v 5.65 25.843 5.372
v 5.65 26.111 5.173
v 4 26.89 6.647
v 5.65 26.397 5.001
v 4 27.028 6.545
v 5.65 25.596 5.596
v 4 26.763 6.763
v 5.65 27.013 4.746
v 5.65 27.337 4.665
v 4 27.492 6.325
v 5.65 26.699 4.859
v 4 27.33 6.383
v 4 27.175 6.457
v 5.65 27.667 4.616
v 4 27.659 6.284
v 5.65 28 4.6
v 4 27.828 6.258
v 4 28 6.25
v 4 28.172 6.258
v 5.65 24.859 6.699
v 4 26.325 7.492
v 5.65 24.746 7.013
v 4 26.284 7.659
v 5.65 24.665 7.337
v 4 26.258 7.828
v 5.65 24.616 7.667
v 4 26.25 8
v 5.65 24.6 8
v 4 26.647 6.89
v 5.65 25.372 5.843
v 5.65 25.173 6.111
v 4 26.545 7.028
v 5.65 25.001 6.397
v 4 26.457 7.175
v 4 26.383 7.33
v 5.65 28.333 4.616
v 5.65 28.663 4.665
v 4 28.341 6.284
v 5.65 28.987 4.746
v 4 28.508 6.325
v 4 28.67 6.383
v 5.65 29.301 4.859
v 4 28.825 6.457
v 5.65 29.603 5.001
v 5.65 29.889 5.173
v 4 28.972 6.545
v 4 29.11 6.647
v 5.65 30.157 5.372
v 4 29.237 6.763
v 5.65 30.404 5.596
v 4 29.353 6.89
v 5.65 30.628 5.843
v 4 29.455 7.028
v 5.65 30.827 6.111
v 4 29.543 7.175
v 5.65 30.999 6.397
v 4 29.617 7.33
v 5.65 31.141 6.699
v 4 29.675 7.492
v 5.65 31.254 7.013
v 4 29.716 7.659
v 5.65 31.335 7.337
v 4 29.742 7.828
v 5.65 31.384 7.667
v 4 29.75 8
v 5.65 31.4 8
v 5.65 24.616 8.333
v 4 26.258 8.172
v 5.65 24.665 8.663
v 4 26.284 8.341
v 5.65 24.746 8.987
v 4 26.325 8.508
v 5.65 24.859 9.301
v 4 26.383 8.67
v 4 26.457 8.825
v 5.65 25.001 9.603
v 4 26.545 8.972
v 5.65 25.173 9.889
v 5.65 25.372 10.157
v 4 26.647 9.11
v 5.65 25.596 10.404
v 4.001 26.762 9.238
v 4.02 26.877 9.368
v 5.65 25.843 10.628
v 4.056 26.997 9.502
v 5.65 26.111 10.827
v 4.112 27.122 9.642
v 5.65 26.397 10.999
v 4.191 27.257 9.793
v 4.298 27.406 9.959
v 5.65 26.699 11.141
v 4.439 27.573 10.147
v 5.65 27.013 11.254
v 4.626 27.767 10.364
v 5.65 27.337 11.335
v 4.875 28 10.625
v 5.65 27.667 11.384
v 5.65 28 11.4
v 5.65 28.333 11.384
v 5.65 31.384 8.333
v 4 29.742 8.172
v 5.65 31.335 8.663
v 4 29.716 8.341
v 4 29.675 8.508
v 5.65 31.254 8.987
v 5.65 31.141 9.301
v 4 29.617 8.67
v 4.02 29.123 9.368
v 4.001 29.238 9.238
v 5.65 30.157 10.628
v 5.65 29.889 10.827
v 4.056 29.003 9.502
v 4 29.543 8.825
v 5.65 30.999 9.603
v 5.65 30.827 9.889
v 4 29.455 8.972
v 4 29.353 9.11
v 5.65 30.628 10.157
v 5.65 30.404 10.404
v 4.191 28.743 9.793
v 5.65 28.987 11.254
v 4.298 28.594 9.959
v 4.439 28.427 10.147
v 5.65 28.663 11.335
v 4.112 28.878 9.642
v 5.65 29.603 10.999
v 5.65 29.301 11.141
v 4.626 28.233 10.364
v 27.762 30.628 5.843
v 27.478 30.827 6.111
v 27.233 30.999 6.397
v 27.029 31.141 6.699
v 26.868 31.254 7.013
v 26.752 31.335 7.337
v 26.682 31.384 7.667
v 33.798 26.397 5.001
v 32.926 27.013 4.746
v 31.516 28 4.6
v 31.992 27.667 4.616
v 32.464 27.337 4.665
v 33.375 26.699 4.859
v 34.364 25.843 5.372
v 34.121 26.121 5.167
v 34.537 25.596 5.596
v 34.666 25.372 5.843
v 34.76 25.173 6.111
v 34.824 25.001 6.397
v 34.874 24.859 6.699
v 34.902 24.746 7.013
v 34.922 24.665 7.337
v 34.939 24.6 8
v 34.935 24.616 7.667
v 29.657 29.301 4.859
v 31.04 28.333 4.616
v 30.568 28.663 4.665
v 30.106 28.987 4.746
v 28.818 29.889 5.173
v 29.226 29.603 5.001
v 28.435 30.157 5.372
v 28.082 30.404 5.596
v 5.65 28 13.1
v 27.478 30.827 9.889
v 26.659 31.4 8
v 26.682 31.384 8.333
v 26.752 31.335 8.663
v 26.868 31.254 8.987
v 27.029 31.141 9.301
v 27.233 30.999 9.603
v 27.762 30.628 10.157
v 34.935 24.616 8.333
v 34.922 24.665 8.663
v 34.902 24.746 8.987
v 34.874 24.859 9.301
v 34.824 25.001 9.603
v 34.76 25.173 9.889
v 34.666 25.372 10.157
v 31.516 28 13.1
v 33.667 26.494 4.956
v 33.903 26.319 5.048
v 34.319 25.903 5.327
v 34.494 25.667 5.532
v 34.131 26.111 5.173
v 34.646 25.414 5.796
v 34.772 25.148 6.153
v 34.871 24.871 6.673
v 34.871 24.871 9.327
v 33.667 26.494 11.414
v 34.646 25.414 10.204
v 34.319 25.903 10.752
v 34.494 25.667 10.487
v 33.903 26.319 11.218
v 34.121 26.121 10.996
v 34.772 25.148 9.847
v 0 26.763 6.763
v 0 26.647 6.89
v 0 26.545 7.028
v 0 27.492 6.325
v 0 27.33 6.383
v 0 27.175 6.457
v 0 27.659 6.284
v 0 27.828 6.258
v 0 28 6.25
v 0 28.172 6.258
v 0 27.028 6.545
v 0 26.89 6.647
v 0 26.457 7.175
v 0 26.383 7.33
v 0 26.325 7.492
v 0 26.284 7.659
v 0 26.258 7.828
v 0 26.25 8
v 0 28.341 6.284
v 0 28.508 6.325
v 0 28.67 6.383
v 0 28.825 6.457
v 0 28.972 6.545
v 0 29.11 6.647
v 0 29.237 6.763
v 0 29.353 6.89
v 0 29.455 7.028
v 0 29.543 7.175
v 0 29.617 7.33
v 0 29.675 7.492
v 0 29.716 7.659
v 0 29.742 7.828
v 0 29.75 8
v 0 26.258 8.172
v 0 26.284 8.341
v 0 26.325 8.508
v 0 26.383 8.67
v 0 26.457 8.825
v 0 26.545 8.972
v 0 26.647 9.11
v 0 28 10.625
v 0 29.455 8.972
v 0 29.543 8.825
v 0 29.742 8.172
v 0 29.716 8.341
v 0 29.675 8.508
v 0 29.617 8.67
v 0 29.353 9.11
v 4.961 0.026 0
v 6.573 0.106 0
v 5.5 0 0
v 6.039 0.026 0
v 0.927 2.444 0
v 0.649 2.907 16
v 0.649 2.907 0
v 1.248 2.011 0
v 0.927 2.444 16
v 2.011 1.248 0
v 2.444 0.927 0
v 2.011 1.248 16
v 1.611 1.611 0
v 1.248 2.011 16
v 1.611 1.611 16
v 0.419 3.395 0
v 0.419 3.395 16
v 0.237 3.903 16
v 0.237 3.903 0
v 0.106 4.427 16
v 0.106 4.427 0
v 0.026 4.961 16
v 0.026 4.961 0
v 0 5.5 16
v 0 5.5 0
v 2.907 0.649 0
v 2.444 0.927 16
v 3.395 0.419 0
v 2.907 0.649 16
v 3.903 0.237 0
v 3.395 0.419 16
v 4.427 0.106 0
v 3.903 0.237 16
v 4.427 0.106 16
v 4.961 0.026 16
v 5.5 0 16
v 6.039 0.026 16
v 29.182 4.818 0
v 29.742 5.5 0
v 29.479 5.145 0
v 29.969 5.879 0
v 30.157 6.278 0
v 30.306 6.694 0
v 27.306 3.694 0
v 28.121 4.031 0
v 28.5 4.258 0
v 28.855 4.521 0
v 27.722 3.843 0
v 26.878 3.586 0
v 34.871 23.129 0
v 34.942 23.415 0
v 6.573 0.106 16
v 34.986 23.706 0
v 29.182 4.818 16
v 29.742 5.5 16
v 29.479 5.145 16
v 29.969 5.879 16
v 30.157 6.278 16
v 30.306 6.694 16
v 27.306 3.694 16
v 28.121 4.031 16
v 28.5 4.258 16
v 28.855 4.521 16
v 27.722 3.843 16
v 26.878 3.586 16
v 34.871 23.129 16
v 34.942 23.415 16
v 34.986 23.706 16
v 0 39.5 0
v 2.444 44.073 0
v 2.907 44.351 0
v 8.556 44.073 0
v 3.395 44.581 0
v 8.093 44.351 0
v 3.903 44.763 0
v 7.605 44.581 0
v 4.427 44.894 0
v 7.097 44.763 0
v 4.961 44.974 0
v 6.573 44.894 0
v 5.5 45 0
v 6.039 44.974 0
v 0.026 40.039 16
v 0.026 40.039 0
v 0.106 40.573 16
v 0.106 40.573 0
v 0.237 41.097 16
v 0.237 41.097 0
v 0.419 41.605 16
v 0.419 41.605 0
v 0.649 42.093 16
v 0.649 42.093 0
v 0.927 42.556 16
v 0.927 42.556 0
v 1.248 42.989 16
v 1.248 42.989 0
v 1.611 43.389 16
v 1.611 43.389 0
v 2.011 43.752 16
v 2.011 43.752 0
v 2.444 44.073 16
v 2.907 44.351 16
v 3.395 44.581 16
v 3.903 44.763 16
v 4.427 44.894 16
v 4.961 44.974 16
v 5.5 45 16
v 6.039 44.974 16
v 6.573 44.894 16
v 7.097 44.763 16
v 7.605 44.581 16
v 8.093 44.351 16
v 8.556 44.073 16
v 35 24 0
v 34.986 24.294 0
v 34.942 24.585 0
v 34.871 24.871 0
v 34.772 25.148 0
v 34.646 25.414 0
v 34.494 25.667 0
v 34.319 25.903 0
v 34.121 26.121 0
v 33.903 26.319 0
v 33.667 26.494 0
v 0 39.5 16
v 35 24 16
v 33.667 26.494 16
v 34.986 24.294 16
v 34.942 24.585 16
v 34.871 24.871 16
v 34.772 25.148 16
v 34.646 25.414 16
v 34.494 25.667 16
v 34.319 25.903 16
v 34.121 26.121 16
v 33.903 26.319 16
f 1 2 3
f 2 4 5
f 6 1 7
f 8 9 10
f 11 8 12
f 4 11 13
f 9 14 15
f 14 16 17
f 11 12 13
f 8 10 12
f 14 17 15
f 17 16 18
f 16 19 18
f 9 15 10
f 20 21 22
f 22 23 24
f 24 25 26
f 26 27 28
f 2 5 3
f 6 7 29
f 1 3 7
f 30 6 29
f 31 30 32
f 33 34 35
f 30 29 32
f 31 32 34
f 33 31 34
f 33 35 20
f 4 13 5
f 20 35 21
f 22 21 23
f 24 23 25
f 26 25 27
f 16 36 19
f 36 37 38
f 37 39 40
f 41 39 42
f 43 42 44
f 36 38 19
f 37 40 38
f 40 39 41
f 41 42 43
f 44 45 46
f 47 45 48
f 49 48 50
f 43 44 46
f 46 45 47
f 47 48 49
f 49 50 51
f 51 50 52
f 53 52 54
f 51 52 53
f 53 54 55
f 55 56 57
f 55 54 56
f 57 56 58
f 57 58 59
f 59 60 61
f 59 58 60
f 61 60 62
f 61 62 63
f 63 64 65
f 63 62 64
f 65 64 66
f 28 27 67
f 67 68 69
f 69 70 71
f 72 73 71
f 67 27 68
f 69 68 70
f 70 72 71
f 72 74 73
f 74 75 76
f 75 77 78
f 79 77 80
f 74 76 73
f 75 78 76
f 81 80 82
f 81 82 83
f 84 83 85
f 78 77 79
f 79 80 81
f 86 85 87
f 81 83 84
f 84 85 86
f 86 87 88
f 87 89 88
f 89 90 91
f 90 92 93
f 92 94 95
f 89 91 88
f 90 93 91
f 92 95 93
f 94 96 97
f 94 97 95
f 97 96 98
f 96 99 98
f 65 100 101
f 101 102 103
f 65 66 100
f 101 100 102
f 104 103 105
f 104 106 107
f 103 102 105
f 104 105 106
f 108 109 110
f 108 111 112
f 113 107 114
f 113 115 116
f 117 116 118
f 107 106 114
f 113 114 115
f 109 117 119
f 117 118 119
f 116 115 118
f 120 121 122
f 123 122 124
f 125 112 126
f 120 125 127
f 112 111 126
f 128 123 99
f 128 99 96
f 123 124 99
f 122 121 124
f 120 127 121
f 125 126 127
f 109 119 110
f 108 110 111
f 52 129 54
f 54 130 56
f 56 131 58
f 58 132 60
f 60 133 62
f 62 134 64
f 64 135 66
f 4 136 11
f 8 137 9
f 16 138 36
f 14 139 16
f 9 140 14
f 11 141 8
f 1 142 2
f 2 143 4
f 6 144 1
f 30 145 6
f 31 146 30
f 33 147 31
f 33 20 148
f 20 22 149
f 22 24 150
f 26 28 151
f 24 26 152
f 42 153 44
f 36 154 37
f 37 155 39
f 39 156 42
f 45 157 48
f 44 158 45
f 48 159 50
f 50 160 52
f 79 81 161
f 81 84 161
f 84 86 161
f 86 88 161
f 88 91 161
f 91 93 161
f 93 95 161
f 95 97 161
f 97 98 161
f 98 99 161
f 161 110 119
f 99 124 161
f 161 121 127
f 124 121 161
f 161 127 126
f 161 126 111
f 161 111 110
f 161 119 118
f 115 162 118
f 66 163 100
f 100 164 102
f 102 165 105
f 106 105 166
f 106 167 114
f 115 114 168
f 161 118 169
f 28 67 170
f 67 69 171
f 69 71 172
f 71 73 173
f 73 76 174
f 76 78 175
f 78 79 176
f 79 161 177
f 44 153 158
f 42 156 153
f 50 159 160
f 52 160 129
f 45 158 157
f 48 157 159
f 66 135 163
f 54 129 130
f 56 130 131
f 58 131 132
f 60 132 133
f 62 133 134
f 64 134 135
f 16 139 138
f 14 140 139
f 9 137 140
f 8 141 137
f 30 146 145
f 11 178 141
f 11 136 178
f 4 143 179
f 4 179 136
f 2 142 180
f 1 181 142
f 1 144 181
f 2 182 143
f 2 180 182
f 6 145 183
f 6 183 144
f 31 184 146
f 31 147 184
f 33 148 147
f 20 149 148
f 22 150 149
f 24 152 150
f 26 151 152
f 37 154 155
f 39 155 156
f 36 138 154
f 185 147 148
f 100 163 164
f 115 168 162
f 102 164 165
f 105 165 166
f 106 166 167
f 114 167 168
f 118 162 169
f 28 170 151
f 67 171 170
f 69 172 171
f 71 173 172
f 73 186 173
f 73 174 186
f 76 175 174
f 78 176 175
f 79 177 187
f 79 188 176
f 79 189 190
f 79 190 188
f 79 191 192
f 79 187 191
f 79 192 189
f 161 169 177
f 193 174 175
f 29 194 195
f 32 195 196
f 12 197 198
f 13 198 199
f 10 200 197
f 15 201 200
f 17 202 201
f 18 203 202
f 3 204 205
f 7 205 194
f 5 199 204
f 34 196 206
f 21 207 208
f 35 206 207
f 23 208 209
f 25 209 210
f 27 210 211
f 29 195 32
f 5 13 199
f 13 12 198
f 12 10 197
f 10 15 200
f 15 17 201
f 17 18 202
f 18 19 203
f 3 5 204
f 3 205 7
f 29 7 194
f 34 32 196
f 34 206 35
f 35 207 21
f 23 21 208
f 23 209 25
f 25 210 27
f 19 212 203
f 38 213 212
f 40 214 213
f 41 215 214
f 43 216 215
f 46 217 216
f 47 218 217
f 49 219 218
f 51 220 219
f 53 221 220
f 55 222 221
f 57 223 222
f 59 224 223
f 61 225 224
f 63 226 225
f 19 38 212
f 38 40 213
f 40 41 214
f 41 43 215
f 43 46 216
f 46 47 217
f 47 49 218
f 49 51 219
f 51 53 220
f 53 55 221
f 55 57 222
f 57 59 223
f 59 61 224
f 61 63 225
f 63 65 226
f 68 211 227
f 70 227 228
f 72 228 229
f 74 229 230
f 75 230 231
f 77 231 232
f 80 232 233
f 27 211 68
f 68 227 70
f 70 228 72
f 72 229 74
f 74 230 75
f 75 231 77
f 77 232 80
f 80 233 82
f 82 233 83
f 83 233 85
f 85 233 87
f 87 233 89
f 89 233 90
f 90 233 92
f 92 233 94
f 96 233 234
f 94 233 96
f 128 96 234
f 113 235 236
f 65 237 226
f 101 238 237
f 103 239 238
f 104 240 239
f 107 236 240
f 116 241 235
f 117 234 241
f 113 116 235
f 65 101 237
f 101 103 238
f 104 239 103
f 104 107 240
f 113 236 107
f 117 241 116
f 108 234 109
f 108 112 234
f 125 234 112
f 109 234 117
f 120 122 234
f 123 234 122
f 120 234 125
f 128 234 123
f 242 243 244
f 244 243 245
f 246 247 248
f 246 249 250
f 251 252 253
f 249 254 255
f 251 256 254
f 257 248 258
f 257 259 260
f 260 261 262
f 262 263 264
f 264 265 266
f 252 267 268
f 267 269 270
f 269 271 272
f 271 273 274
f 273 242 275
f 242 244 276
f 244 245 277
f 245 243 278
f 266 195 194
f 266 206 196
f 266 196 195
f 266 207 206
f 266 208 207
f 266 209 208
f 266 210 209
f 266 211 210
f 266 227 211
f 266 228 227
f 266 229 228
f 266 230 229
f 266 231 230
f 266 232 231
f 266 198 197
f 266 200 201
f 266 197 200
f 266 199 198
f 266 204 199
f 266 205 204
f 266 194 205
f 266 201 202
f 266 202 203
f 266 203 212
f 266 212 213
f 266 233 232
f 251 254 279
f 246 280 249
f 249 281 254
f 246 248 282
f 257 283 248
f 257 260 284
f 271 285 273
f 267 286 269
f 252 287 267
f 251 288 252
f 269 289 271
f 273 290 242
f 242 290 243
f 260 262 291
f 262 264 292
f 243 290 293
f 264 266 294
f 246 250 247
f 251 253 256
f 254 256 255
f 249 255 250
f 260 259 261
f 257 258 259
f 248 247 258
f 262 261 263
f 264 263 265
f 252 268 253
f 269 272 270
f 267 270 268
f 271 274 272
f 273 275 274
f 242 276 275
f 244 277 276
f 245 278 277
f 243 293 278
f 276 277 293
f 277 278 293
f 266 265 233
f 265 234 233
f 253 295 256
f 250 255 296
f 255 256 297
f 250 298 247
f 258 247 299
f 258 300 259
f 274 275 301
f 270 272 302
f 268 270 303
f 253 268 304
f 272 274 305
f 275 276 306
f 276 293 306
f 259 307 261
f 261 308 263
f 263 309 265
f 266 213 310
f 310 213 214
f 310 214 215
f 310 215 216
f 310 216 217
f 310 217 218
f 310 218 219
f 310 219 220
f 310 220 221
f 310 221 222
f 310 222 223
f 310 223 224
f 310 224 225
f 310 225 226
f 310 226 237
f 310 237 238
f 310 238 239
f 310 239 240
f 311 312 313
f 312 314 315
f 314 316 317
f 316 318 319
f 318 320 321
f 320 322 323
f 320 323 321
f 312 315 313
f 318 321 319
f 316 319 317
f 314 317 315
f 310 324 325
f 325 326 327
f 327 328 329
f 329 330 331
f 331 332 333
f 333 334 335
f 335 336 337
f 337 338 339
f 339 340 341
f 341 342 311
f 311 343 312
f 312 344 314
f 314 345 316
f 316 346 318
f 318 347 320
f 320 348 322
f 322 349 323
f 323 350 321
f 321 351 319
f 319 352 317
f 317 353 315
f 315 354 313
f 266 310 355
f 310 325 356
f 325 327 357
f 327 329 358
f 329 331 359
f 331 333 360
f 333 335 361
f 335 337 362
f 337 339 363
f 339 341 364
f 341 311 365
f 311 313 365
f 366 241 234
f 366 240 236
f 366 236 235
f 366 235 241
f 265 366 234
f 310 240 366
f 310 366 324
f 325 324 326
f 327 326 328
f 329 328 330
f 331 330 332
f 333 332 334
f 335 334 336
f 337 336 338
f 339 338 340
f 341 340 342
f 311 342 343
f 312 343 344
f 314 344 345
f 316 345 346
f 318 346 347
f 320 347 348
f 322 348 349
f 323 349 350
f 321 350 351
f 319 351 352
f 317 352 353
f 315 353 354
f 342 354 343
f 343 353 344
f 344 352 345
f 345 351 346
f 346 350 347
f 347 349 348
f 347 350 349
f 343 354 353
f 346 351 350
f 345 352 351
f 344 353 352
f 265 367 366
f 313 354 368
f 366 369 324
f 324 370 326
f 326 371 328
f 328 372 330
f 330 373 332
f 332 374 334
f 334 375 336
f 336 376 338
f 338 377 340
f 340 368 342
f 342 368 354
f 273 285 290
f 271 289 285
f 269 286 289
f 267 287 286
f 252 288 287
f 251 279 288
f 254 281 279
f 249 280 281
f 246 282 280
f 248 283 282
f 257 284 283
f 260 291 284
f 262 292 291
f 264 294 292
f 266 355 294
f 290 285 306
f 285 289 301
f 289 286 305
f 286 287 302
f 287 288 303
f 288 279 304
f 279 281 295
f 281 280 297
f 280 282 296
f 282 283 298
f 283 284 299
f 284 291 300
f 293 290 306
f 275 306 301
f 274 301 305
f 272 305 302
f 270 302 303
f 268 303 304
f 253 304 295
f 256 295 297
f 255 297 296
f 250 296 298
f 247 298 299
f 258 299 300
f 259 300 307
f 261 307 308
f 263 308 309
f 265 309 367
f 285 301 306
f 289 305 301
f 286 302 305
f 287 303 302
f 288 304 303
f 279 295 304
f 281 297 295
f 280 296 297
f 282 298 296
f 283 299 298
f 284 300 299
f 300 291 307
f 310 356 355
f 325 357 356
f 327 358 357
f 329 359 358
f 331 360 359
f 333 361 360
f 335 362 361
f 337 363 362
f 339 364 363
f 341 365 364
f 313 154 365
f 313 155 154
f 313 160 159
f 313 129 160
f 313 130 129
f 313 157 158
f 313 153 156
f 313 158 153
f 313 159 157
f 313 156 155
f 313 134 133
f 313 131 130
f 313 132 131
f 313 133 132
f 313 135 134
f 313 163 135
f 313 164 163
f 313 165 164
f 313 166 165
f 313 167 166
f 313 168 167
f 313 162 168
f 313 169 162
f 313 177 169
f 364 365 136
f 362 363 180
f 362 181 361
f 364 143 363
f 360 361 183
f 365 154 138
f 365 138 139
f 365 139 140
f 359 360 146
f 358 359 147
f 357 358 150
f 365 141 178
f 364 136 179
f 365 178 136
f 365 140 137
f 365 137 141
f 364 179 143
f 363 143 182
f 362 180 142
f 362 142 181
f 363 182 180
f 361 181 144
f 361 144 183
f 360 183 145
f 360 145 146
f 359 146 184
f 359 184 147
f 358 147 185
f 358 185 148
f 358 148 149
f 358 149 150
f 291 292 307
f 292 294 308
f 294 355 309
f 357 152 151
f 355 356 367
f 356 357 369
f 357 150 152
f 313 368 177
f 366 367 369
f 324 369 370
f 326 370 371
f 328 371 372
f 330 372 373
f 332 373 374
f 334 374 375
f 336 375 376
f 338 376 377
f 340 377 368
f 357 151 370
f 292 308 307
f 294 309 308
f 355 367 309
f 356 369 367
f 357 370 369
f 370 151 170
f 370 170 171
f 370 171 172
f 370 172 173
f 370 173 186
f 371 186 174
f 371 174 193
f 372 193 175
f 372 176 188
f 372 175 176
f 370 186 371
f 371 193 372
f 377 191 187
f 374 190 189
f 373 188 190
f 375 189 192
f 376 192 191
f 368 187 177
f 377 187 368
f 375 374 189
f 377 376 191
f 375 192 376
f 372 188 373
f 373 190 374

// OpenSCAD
// 3D Printable Towel Hook
// Designed for a single M3 flat head screw
// Print orientation: Flat on side (XY plane) for maximum strength

$fn = 64;

// --- Dimenions ---
hook_width = 16;       // Thickness of the hook (extrusion height)
wall_height = 45;      // Height of the back plate
stick_out = 32;        // How far it sticks out from wall
stem_thickness = 11;   // Thickness of the vertical arm
screw_y_pos = 28;      // Height of screw hole from bottom

// M3 Screw dimensions
screw_shaft_d = 3.5;
screw_head_d = 6.8;    // Clearance for head
screw_cone_h = (screw_head_d - screw_shaft_d) / 2; // Approx 1.65mm

// --- Modules ---

module teardrop_shape_2d(r) {
    // Defines a teardrop logic where the 'point' is aimed at Global Z
    // AFTER rotation of [0, 90, 0].
    // RotY(90) maps Local X to Global -Z.
    // So to point Global +Z, we need Local -X.
    hull() {
        circle(r=r);
        // Point at -X
        translate([-r/sin(45), 0]) square([0.1, 0.1], center=true); 
    }
}

// Actually, calculating the point offset is annoying.
// Let's just define it standard (Point +Y) and rotate properly.
// Standard Teardrop (Point +Y):
// If Rotated [0, 90, 0]: Y stays Y. Point stays Horizontal. Bad.
// If Rotated [0, 90, 0] * [0, 0, 90]?
// Rotate Z(90) first: X->Y, Y->-X.
// Then Y(90): ...
// Let's just construct the polygon manually in the loop.

module horizontal_teardrop(d, h) {
    r = d/2;
    // We want a hole along X axis.
    // We want the peak in +Z axis.
    // Let's construct it directly in 3D using linear_extrude along X (using rotation).
    
    rotate([0, 90, 0]) // Extrude becomes X axis
    linear_extrude(height=h, center=false)
    polygon([
        [0, r],                   // Top of circle (Global Y+)
        [r * cos(45), r * sin(45)],
        [r * 1.414, 0],           // Peak (Global Z+ ... wait, check mapping)
        [r * cos(45), -r * sin(45)],
        [0, -r],
        [-r * cos(45), -r * sin(45)],
        [-r * 1.414, 0],          // Bottom Peak?
        [-r * cos(45), r * sin(45)]
    ]);
    // The Matrix check again:
    // Cylinder along Z. Profile in XY.
    // Rotate [0, 90, 0].
    // New X = Old Z.
    // New Y = Old Y.
    // New Z = -Old X.
    
    // We want Peak at New Z (+).
    // So we need Peak at Old X (-).
    // So the point in the 2D polygon must be at x < 0.
    
    // Correct Polygon for Z-extrusion before rotation:
    // Circle at origin.
    // Point at [-r, 0] or further negative.
    
}

module teardrop_x_aligned(d, h) {
    r = d/2;
    rotate([0, 90, 0])
    linear_extrude(height=h)
    hull() {
        circle(r=r);
        // Peak at Local -X (which maps to Global +Z)
        polygon([
            [0, r * sin(45)],
            [-r * 1.5, 0], // The tip
            [0, -r * sin(45)]
        ]);
    }
}

module screw_hole_cutout() {
    seat_x = 4; // Thickness of wall behind screw
    
    translate([-1, screw_y_pos, hook_width/2]) {
        // 1. Shaft Passage (Teardrop)
        teardrop_x_aligned(d=screw_shaft_d, h=seat_x + 2);
    }
    
    translate([seat_x, screw_y_pos, hook_width/2]) {
        // 2. Head Countersink (Cone)
        // Since we can't easily teardrop a cone, and it's short,
        // we use a standard cylinder cone.
        // It's inside the body, bridging is minimal.
        rotate([0, 90, 0])
            cylinder(d1=screw_shaft_d, d2=screw_head_d, h=screw_cone_h);
        
        // 3. Head Access (Teardrop)
        // Starts after cone.
        translate([screw_cone_h, 0, 0])
            teardrop_x_aligned(d=screw_head_d, h=30);
    }
}


module hook_shape() {
    difference() {
        hull() {
            // Top of wall mount
            translate([stem_thickness/2, wall_height - stem_thickness/2]) 
                circle(d=stem_thickness);
            
            // Bottom "Heel"
            translate([stem_thickness/2, stem_thickness/2]) 
                circle(d=stem_thickness);
            
            // Curve bottom 
            translate([stick_out - 6, 8]) 
                circle(d=9);
            
            // Tip
            translate([stick_out, 24]) 
                circle(d=6);
        }
        
        // Flatten the back
        translate([-stem_thickness, -10]) 
            square([stem_thickness, wall_height + 20]);
    }
}

difference() {
    linear_extrude(height=hook_width, convexity=10)
        hook_shape();
        
    screw_hole_cutout();
}
